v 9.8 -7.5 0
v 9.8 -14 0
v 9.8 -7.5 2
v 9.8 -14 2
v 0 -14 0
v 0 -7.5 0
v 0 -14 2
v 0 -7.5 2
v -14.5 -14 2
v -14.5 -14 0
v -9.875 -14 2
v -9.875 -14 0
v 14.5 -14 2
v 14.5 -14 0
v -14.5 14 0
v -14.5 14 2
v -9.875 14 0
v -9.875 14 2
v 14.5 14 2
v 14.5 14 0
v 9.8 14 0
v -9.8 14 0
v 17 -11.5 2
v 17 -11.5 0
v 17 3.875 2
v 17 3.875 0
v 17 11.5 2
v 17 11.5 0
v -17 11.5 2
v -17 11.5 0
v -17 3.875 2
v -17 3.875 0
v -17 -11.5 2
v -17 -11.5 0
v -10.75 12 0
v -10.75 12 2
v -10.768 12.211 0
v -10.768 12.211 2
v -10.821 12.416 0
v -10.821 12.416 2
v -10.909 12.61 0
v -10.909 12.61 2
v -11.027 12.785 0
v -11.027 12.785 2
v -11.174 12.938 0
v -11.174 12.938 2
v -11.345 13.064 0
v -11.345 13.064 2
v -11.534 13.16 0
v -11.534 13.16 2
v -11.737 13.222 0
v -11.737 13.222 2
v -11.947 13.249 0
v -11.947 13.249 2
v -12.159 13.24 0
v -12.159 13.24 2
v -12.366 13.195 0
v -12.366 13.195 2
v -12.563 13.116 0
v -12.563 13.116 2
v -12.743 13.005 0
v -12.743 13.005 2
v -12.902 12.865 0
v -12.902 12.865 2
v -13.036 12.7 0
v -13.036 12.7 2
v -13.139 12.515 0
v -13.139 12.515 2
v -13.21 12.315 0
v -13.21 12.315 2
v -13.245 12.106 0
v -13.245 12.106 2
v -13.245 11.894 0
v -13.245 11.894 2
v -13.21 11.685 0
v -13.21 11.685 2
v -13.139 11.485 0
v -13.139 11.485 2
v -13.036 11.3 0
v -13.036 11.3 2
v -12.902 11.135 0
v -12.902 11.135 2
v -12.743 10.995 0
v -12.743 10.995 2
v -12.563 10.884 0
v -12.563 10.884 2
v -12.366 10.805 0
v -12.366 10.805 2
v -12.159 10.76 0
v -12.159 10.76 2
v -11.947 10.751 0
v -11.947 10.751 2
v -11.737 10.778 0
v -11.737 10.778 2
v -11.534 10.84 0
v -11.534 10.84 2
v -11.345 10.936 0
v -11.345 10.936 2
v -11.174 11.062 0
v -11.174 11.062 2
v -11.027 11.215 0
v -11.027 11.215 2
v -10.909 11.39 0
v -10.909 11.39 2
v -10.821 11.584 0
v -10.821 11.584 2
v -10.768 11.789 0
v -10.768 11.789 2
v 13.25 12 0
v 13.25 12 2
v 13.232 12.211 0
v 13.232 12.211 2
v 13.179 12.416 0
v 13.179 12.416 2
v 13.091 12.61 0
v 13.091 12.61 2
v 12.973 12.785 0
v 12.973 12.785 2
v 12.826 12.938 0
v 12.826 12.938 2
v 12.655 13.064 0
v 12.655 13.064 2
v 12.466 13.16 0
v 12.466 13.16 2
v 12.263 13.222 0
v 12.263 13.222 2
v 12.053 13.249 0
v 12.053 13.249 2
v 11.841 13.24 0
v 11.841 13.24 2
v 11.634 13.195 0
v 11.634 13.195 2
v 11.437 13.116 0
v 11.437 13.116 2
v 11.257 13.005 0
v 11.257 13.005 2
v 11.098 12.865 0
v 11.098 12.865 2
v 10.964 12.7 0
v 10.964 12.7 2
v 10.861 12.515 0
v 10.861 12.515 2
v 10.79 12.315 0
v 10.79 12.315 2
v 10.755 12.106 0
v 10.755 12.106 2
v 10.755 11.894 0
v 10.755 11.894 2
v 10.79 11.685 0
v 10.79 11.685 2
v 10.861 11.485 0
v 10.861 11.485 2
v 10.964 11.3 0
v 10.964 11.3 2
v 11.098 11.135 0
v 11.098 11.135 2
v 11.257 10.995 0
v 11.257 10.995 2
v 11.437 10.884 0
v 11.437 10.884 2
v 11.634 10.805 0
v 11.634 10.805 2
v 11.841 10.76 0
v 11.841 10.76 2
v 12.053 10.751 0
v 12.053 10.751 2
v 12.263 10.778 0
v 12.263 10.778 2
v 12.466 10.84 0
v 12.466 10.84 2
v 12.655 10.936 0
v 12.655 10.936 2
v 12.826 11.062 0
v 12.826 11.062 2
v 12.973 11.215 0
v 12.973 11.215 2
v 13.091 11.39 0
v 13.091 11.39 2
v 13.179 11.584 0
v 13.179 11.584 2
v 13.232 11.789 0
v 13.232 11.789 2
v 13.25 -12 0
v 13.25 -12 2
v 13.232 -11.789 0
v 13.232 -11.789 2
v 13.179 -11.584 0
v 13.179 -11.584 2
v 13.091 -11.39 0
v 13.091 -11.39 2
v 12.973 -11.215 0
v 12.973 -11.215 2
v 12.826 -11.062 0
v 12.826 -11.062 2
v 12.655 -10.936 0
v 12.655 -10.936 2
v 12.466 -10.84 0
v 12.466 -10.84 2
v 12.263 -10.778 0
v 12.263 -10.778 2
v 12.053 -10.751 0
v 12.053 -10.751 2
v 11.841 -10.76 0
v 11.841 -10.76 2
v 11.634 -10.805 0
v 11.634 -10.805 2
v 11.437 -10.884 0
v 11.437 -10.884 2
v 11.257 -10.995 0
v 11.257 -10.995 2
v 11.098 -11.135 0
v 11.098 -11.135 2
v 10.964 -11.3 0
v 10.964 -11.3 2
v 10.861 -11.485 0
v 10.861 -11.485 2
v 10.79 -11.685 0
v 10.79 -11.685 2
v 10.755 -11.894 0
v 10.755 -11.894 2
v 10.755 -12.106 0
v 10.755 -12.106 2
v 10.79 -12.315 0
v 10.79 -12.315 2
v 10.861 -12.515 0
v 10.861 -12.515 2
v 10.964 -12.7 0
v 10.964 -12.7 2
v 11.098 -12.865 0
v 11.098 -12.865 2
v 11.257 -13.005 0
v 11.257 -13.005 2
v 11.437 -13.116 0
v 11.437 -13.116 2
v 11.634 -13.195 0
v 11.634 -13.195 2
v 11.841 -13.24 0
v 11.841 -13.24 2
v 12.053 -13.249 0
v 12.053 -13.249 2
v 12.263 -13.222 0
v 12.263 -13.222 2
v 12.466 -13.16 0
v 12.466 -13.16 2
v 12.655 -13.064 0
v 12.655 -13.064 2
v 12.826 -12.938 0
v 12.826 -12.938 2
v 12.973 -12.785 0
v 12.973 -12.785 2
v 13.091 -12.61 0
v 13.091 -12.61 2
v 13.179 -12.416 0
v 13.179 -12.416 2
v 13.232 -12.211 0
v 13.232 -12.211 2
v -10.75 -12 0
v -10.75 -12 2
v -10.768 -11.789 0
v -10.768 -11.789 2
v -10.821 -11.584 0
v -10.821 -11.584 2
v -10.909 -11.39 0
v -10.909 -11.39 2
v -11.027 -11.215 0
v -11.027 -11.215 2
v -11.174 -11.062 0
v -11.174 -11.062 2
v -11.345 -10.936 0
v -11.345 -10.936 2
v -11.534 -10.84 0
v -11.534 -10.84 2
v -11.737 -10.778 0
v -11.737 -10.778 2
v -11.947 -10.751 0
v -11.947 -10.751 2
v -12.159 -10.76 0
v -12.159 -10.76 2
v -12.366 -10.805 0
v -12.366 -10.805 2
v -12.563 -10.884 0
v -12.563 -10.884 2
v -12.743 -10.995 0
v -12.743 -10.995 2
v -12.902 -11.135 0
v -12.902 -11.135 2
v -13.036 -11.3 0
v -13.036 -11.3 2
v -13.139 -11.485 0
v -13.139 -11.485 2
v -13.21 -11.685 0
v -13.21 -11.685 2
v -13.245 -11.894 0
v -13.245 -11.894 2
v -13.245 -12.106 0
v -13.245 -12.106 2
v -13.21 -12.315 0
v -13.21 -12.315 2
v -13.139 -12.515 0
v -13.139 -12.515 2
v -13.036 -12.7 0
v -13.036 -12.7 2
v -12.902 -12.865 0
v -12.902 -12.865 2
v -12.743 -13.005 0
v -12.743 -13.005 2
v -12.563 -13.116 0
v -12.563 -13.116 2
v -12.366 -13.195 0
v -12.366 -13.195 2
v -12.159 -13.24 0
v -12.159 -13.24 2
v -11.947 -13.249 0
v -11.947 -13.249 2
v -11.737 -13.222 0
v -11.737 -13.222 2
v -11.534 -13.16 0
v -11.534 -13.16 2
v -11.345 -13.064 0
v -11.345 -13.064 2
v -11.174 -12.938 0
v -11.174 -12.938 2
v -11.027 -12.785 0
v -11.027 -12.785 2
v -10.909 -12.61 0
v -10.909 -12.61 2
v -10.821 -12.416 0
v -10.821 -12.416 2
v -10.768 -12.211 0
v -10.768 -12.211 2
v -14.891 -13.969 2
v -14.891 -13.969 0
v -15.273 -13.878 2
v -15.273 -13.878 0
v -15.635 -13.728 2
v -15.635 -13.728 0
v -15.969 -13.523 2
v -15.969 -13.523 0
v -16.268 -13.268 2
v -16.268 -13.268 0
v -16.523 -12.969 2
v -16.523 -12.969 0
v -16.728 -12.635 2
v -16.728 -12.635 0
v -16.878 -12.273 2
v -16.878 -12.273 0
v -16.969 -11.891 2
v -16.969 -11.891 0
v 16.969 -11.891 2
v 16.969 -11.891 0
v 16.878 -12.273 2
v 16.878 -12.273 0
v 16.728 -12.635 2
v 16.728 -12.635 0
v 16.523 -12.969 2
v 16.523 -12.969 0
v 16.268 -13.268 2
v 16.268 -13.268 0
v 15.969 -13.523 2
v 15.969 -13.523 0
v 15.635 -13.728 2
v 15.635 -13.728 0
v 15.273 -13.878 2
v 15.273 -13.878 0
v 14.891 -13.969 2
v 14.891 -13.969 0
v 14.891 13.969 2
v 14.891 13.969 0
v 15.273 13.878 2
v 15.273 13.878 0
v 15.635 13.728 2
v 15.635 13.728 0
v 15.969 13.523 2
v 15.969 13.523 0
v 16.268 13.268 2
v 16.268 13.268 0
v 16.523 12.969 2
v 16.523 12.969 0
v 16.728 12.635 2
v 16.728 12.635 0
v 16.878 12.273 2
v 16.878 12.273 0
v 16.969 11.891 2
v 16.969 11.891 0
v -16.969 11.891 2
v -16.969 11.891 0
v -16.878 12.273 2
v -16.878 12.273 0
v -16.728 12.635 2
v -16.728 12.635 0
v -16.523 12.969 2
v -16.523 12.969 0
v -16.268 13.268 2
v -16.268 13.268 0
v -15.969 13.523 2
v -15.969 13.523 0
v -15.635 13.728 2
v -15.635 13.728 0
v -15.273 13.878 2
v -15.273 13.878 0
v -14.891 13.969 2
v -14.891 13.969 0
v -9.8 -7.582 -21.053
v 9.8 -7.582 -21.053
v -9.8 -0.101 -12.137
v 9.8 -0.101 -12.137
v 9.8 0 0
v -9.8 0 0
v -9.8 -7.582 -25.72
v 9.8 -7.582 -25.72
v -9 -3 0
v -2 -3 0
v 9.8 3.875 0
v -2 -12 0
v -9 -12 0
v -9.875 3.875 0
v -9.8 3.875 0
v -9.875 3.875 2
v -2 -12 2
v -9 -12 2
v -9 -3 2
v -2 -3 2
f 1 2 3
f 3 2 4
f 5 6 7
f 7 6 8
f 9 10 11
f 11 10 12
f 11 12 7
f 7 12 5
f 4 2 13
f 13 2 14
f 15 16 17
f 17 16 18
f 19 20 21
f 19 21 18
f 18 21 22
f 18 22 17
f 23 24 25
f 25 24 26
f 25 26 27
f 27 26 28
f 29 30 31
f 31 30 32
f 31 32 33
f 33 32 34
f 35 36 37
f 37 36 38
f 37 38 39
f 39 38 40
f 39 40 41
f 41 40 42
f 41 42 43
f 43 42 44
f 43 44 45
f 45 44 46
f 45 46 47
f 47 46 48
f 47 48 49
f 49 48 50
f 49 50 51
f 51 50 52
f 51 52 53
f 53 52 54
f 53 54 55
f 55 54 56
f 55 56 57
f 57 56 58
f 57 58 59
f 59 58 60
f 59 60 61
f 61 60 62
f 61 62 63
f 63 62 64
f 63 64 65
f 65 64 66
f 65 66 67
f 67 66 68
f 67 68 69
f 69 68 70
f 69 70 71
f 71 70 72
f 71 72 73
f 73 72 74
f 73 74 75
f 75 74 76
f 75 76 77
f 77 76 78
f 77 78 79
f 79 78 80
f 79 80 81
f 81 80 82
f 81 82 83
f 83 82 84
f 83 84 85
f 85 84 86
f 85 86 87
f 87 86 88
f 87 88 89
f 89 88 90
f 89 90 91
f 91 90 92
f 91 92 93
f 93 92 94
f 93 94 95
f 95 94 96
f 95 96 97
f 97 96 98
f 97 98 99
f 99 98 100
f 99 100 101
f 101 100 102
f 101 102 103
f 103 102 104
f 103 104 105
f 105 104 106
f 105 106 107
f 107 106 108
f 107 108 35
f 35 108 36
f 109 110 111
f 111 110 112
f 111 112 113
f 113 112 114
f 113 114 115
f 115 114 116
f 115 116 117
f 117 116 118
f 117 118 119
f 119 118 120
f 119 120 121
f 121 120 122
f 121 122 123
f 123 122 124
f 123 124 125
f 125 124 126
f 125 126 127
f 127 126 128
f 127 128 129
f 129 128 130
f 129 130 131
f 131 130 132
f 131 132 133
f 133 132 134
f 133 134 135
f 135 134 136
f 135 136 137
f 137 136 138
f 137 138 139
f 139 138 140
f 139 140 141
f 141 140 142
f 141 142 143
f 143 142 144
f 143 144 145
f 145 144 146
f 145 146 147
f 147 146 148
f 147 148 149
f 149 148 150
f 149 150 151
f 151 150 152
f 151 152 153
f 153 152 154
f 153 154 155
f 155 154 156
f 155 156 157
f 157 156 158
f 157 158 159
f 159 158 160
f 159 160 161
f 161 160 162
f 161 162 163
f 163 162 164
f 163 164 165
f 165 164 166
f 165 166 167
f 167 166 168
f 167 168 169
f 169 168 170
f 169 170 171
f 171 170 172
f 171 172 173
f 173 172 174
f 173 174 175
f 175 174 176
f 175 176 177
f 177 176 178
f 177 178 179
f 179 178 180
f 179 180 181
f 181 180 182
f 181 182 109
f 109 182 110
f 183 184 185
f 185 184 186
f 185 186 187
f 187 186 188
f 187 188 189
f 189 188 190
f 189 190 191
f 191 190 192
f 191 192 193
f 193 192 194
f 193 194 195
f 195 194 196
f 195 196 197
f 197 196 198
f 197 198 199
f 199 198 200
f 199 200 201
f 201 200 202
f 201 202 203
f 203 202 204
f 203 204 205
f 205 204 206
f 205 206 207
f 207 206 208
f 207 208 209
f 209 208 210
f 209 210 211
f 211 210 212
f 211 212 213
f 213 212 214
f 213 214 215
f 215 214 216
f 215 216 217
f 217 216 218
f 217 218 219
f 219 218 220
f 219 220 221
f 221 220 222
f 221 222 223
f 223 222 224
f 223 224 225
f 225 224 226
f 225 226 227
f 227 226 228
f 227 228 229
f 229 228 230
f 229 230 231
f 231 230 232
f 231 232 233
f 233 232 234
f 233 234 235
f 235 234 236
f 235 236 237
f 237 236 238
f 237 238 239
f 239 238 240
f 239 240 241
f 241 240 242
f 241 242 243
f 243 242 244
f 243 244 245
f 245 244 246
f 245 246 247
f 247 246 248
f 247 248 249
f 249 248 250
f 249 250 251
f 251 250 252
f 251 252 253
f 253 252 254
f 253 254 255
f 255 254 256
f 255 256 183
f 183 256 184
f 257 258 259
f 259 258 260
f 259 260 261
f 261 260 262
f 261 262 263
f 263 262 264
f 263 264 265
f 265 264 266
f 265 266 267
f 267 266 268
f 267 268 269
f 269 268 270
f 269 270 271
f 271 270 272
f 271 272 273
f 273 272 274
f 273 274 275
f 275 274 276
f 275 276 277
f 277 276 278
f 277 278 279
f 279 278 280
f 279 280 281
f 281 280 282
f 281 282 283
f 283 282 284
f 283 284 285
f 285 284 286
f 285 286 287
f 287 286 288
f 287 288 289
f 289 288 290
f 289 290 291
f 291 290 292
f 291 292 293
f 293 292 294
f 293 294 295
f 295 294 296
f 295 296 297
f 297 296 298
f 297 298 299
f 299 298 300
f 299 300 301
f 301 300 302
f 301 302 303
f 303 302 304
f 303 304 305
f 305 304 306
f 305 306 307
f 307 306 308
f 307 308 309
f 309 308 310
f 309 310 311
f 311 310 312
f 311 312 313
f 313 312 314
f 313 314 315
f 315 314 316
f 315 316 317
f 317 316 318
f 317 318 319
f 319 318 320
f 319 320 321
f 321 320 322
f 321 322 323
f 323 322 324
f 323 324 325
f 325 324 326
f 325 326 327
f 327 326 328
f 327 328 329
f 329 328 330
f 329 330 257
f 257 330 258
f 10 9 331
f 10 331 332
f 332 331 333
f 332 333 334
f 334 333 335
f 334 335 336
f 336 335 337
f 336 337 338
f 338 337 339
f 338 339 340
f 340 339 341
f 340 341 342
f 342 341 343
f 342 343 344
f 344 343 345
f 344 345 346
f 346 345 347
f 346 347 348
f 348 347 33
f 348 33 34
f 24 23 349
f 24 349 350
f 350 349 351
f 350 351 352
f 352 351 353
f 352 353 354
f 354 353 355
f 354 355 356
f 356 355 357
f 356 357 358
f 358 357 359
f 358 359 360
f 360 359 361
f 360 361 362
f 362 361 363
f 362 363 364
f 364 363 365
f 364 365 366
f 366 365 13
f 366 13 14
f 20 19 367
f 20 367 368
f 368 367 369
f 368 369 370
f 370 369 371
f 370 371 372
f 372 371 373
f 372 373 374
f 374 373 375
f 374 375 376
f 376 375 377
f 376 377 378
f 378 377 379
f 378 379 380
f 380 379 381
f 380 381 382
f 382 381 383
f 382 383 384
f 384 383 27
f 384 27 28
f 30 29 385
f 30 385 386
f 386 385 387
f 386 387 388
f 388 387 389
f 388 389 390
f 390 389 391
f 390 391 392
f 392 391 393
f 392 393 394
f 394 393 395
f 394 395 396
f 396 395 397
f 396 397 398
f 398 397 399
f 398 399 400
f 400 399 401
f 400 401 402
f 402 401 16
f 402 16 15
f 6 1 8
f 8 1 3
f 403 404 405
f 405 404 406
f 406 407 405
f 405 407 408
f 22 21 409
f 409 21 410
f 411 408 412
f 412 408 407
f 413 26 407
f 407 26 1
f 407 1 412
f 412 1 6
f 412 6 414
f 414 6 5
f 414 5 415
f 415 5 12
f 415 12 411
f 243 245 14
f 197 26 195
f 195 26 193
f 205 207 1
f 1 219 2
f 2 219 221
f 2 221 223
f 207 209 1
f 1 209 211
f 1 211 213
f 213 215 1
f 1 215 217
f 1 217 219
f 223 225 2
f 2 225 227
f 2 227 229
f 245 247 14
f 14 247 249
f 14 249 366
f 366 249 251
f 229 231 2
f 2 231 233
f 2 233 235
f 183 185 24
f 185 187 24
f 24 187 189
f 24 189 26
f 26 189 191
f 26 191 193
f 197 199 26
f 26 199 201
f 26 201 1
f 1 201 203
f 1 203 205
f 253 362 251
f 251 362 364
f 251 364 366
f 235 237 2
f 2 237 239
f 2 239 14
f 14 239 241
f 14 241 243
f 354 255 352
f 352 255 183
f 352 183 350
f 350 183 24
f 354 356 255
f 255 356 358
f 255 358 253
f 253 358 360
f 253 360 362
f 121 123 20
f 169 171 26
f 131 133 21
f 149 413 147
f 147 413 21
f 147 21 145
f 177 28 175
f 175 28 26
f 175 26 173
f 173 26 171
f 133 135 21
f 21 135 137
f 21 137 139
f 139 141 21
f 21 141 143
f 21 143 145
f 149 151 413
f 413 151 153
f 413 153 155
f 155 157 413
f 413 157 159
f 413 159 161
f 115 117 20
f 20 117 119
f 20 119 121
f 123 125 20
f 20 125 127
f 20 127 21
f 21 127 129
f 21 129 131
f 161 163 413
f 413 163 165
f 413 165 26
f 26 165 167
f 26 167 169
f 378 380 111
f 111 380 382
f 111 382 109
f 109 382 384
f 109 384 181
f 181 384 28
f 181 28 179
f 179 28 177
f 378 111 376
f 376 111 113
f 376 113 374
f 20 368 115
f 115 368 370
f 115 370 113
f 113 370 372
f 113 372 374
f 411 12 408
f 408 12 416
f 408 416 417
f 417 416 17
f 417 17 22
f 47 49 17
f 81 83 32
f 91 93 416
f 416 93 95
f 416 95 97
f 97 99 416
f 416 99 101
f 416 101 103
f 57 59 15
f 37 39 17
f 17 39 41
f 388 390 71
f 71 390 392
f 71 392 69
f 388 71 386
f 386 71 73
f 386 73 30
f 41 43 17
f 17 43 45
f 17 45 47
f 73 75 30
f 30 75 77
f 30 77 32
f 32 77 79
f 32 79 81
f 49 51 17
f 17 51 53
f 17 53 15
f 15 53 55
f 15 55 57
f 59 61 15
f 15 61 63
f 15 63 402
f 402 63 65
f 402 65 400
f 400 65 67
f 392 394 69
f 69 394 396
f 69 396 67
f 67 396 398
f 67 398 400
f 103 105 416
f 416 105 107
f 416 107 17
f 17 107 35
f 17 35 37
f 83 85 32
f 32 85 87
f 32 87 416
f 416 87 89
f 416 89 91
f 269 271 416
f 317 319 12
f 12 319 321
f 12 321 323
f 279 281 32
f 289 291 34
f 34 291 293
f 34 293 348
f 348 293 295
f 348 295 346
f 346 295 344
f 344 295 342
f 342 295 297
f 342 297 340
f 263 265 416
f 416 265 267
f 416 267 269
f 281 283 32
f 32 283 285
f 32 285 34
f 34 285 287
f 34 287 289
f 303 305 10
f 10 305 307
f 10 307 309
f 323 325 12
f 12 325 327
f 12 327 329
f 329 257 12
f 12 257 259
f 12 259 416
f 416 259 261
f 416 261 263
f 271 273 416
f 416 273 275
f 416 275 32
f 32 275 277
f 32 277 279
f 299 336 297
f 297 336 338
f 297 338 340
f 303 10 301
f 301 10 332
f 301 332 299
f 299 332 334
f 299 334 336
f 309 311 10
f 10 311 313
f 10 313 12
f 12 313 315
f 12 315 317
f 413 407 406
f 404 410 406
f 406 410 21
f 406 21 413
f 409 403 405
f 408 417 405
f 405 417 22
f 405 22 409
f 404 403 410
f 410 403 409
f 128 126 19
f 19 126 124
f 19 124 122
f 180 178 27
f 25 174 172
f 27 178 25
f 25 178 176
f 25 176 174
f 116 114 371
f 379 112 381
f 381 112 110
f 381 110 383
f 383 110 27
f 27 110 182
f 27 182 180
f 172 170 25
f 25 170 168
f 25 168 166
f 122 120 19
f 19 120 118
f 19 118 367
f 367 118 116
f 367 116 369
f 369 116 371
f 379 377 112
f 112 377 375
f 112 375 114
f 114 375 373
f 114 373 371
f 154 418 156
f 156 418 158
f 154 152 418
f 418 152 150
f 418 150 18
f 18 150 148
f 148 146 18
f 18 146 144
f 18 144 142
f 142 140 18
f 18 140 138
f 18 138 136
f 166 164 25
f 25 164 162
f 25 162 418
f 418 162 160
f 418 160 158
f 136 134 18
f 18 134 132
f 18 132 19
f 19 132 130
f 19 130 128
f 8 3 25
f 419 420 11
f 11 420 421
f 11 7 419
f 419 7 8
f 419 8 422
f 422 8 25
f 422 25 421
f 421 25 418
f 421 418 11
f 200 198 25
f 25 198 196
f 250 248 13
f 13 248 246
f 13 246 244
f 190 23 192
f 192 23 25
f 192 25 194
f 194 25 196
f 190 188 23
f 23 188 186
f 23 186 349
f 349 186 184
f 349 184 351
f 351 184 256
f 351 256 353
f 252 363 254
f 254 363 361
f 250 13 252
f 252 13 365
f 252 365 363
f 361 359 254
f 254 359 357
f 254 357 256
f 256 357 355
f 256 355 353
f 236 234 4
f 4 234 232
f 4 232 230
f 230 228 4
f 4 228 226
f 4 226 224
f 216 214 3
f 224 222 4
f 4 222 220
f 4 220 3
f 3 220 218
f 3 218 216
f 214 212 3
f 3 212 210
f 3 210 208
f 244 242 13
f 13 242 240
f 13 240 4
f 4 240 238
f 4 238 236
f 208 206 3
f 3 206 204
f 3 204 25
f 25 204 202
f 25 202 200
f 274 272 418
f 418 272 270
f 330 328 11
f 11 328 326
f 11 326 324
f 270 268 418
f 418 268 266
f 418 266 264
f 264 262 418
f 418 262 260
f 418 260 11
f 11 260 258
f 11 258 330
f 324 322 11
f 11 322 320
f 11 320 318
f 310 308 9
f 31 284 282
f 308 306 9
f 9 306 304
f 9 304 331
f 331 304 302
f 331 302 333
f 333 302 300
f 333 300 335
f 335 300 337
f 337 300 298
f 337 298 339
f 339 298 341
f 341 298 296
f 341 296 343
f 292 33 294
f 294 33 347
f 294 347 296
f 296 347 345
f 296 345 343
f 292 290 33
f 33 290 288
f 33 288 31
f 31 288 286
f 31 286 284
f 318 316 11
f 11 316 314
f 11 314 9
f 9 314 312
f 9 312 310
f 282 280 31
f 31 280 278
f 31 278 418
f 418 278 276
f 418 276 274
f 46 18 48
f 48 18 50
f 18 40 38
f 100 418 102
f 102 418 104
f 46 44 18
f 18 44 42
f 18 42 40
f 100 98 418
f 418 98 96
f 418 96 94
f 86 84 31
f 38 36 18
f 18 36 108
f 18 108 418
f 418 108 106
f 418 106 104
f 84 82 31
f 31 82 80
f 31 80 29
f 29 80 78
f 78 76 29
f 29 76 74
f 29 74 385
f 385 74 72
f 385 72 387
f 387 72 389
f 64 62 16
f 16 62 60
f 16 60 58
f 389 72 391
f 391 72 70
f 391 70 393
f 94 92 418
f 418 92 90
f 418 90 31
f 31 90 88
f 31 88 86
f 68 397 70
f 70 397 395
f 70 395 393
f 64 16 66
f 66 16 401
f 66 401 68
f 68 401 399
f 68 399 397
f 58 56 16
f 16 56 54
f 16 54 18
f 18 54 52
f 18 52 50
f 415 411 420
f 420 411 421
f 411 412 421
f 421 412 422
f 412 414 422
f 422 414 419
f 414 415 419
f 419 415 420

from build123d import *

# Parameters (mm, degrees)
SKETCH_1_W           = 40
SKETCH_1_H           = 32
SKETCH_1_R           = 1.15
EXTRUDE_1_DEPTH      = 3
SKETCH_2_W           = 9.8
SKETCH_2_H           = 5
CUT_EXTRUDE_1_DEPTH  = 3
SKETCH_3_W           = 40
SKETCH_3_H           = 32
SKETCH_3_W_2         = 34
SKETCH_3_H_2         = 28
CUT_EXTRUDE_2_DEPTH  = 3
SKETCH_4_R           = 1.15
EXTRUDE_2_DEPTH      = 1
EXTRUDE_3_DEPTH      = 1
EXTRUDE_5_DEPTH      = 26.8
CUT_EXTRUDE_5_DEPTH  = 7.2
SKETCH_8_W           = 7.003091986
SKETCH_8_H           = 2.463874749
CUT_EXTRUDE_6_DEPTH  = 20
CUT_EXTRUDE_START    = -1
SKETCH_10_R          = 1.15
CUT_EXTRUDE_7_DEPTH  = 1
EXTRUDE_START        = -3
SKETCH_11_R          = 1.15
EXTRUDE_6_DEPTH      = 3
CUT_EXTRUDE_8_DEPTH  = 10
EXTRUDE_START_2      = 1
SKETCH_13_R          = 2
SKETCH_13_R_2        = 1.25
EXTRUDE_9_DEPTH      = 1
SKETCH_14_W          = 8
SKETCH_14_H          = 3
CUT_EXTRUDE_10_DEPTH = 1.5
FILLET_1_R           = 2.5
SKETCH_15_W          = 9.8
SKETCH_15_H          = 1.5
CUT_EXTRUDE_11_DEPTH = 10
EXTRUDE_10_DEPTH     = 1.5
EXTRUDE_11_DEPTH     = 1
SKETCH_18_W          = 36.501584598
SKETCH_18_H          = 29.005250462
CUT_EXTRUDE_12_DEPTH = 2
SKETCH_19_W          = 7
SKETCH_19_H          = 9
CUT_EXTRUDE_13_DEPTH = 2


with BuildPart() as part:
    # 스케치1 → 보스-돌출1 (new body)
    with BuildSketch(Plane.XY):
        Rectangle(SKETCH_1_W, SKETCH_1_H)
        with Locations((-11.5, 11.5)):
            Circle(SKETCH_1_R, mode=Mode.SUBTRACT)
        with Locations((11.5, 11.5)):
            Circle(SKETCH_1_R, mode=Mode.SUBTRACT)
        with Locations((11.5, -11.5)):
            Circle(SKETCH_1_R, mode=Mode.SUBTRACT)
        with Locations((-11.5, -11.5)):
            Circle(SKETCH_1_R, mode=Mode.SUBTRACT)
    extrude(amount=EXTRUDE_1_DEPTH)

    # 스케치2 → 컷-돌출1 (cut)
    with BuildSketch(Plane.XY.offset(3)):
        with Locations((4.9, -11.5)):
            Rectangle(SKETCH_2_W, SKETCH_2_H)
    extrude(amount=-CUT_EXTRUDE_1_DEPTH, mode=Mode.SUBTRACT)

    # 스케치3 → 컷-돌출2 (cut)
    with BuildSketch(Plane.XY.offset(3)):
        Rectangle(SKETCH_3_W, SKETCH_3_H)
        Rectangle(SKETCH_3_W_2, SKETCH_3_H_2, mode=Mode.SUBTRACT)
    extrude(amount=-CUT_EXTRUDE_2_DEPTH, mode=Mode.SUBTRACT)

    # 스케치4 → 보스-돌출2 (add)
    # profile 1 of 13: a face of its own
    with BuildSketch(Plane.XY.offset(3)):
        with BuildLine():
            ThreePointArc((11.5, 14), (9.732233047, 13.267766953), (9, 11.5))
            Line((9, 11.5), (10.35, 11.5))
            ThreePointArc((10.35, 11.5), (11.5, 12.65), (12.65, 11.5))
            Line((12.65, 11.5), (14, 11.5))
            ThreePointArc((14, 11.5), (13.267766953, 13.267766953), (11.5, 14))
        make_face()
    # profile 2 of 13: a face of its own
    with BuildSketch(Plane.XY.offset(3)):
        with BuildLine():
            Line((10.35, 11.5), (9, 11.5))
            ThreePointArc((9, 11.5), (11.5, 9), (14, 11.5))
            Line((14, 11.5), (12.65, 11.5))
            ThreePointArc((12.65, 11.5), (11.5, 10.35), (10.35, 11.5))
        make_face()
    # profile 3 of 13: a face of its own
    with BuildSketch(Plane.XY.offset(3)):
        with BuildLine():
            ThreePointArc((11.5, 14), (9.732233047, 13.267766953), (9, 11.5))
            Line((9, 11.5), (10.35, 11.5))
            ThreePointArc((10.35, 11.5), (11.5, 12.65), (12.65, 11.5))
            Line((12.65, 11.5), (14, 11.5))
            ThreePointArc((14, 11.5), (13.267766953, 13.267766953), (11.5, 14))
        make_face()
    # profile 4 of 13: a face of its own
    with BuildSketch(Plane.XY.offset(3)):
        with BuildLine():
            Line((10.35, 11.5), (9, 11.5))
            ThreePointArc((9, 11.5), (11.5, 9), (14, 11.5))
            Line((14, 11.5), (12.65, 11.5))
            ThreePointArc((12.65, 11.5), (11.5, 10.35), (10.35, 11.5))
        make_face()
    # profile 5 of 13: a face of its own
    with BuildSketch(Plane.XY.offset(3)):
        with BuildLine():
            ThreePointArc((-11.5, 14), (-13.267766953, 13.267766953), (-14, 11.5))
            Line((-14, 11.5), (-12.65, 11.5))
            ThreePointArc((-12.65, 11.5), (-11.5, 12.65), (-10.35, 11.5))
            Line((-10.35, 11.5), (-9, 11.5))
            ThreePointArc((-9, 11.5), (-9.732233047, 13.267766953), (-11.5, 14))
        make_face()
    # profile 6 of 13: a face of its own
    with BuildSketch(Plane.XY.offset(3)):
        with BuildLine():
            Line((-12.65, 11.5), (-14, 11.5))
            ThreePointArc((-14, 11.5), (-11.5, 9), (-9, 11.5))
            Line((-9, 11.5), (-10.35, 11.5))
            ThreePointArc((-10.35, 11.5), (-11.5, 10.35), (-12.65, 11.5))
        make_face()
    # profile 7 of 13: a face of its own
    with BuildSketch(Plane.XY.offset(3)):
        with BuildLine():
            ThreePointArc((-11.5, 14), (-13.267766953, 13.267766953), (-14, 11.5))
            Line((-14, 11.5), (-12.65, 11.5))
            ThreePointArc((-12.65, 11.5), (-11.5, 12.65), (-10.35, 11.5))
            Line((-10.35, 11.5), (-9, 11.5))
            ThreePointArc((-9, 11.5), (-9.732233047, 13.267766953), (-11.5, 14))
        make_face()
    # profile 8 of 13: a face of its own
    with BuildSketch(Plane.XY.offset(3)):
        with BuildLine():
            Line((-12.65, 11.5), (-14, 11.5))
            ThreePointArc((-14, 11.5), (-11.5, 9), (-9, 11.5))
            Line((-9, 11.5), (-10.35, 11.5))
            ThreePointArc((-10.35, 11.5), (-11.5, 10.35), (-12.65, 11.5))
        make_face()
    # profile 9 of 13: a face of its own
    with BuildSketch(Plane.XY.offset(3)):
        with BuildLine():
            ThreePointArc((-9, -11.5), (-11.5, -9), (-14, -11.5))
            Line((-14, -11.5), (-12.65, -11.5))
            ThreePointArc((-12.65, -11.5), (-11.5, -10.35), (-10.35, -11.5))
            Line((-10.35, -11.5), (-9, -11.5))
        make_face()
    # profile 10 of 13: a face of its own
    with BuildSketch(Plane.XY.offset(3)):
        with BuildLine():
            Line((-12.65, -11.5), (-14, -11.5))
            ThreePointArc((-14, -11.5), (-13.267766953, -13.267766953), (-11.5, -14))
            ThreePointArc((-11.5, -14), (-9.732233047, -13.267766953), (-9, -11.5))
            Line((-9, -11.5), (-10.35, -11.5))
            ThreePointArc((-10.35, -11.5), (-11.5, -12.65), (-12.65, -11.5))
        make_face()
    # profile 11 of 13: a face of its own
    with BuildSketch(Plane.XY.offset(3)):
        with BuildLine():
            ThreePointArc((-9, -11.5), (-11.5, -9), (-14, -11.5))
            Line((-14, -11.5), (-12.65, -11.5))
            ThreePointArc((-12.65, -11.5), (-11.5, -10.35), (-10.35, -11.5))
            Line((-10.35, -11.5), (-9, -11.5))
        make_face()
    # profile 12 of 13: a face of its own
    with BuildSketch(Plane.XY.offset(3)):
        with BuildLine():
            Line((-12.65, -11.5), (-14, -11.5))
            ThreePointArc((-14, -11.5), (-13.267766953, -13.267766953), (-11.5, -14))
            ThreePointArc((-11.5, -14), (-9.732233047, -13.267766953), (-9, -11.5))
            Line((-9, -11.5), (-10.35, -11.5))
            ThreePointArc((-10.35, -11.5), (-11.5, -12.65), (-12.65, -11.5))
        make_face()
    # profile 13 of 13: a face of its own
    with BuildSketch(Plane.XY.offset(3)):
        with BuildLine():
            Line((9.8, -9.666969722), (9.8, -13.333030278))
            ThreePointArc((9.8, -13.333030278), (10.586921607, -13.827291956), (11.5, -14))
            ThreePointArc((11.5, -14), (13.267766953, -13.267766953), (14, -11.5))
            ThreePointArc((14, -11.5), (12.5, -9.208712153), (9.8, -9.666969722))
        make_face()
        with Locations((11.5, -11.5)):
            Circle(SKETCH_4_R, mode=Mode.SUBTRACT)
    extrude(amount=EXTRUDE_2_DEPTH)

    # 스케치5 → 보스-돌출3 (add)
    with BuildSketch(Plane.XY.offset(3)):
        with BuildLine():
            Line((14, -14), (14, -11.5))
            ThreePointArc((14, -11.5), (13.267766953, -13.267766953), (11.5, -14))
            Line((11.5, -14), (14, -14))
        make_face()
        with BuildLine():
            ThreePointArc((-11.5, -14), (-13.267766953, -13.267766953), (-14, -11.5))
            Line((-14, -11.5), (-14, -14))
            Line((-14, -14), (-11.5, -14))
        make_face()
        with BuildLine():
            Line((-9, -14), (-9, -11.5))
            ThreePointArc((-9, -11.5), (-9.732233047, -13.267766953), (-11.5, -14))
            Line((-11.5, -14), (-9, -14))
        make_face()
        with BuildLine():
            ThreePointArc((-14, 11.5), (-13.267766953, 13.267766953), (-11.5, 14))
            Line((-11.5, 14), (-14, 14))
            Line((-14, 14), (-14, 11.5))
        make_face()
        with BuildLine():
            Line((-9, 11.5), (-9, 14))
            Line((-9, 14), (-11.5, 14))
            ThreePointArc((-11.5, 14), (-9.732233047, 13.267766953), (-9, 11.5))
        make_face()
        with BuildLine():
            ThreePointArc((9, 11.5), (9.732233047, 13.267766953), (11.5, 14))
            Line((11.5, 14), (9, 14))
            Line((9, 14), (9, 11.5))
        make_face()
        with BuildLine():
            ThreePointArc((11.5, 14), (13.267766953, 13.267766953), (14, 11.5))
            Line((14, 11.5), (14, 14))
            Line((14, 14), (11.5, 14))
        make_face()
        with BuildLine():
            Line((14, -11.5), (12.65, -11.5))
            ThreePointArc((12.65, -11.5), (11.5, -12.65), (10.35, -11.5))
            Line((10.35, -11.5), (9.8, -11.5))
            Line((9.8, -11.5), (9.8, -14))
            Line((9.8, -14), (11.5, -14))
            ThreePointArc((11.5, -14), (13.267766953, -13.267766953), (14, -11.5))
        make_face()
    extrude(amount=EXTRUDE_3_DEPTH)

    # 스케치6 → 보스-돌출5 (add)
    with BuildSketch(Plane.ZY.offset(17)):
        Polygon((-22.981333294, -5.283628291), (-21.052970465, -7.58176162), (-26.811555509, -8.497566339), align=None)
        Polygon((-9.562303818, 2.060052525), (0, 10.083778132), (0, 14), (-22.981333294, -5.283628291), (-21.052970465, -7.58176162), (-12.137495761, -0.100790085), align=None)
        Polygon((-12.137495761, -0.100790085), (0, 0), (0, 10.083778132), (-9.562303818, 2.060052525), align=None)
    extrude(amount=-EXTRUDE_5_DEPTH)

    # 스케치7 → 컷-돌출5 (cut)
    with BuildSketch(Plane.ZY.offset(17)):
        Polygon((0, 0), (0, 14), (-26.811555509, -8.497566339), (-21.052970465, -7.58176162), (-12.137495761, -0.100790085), align=None)
    extrude(amount=-CUT_EXTRUDE_5_DEPTH, mode=Mode.SUBTRACT)

    # 스케치8 → 컷-돌출6 (cut)
    with BuildSketch(Plane.ZY.offset(9.8)):
        with Locations((-24.554516458, -8.813698995)):
            Rectangle(SKETCH_8_W, SKETCH_8_H)
    extrude(amount=-CUT_EXTRUDE_6_DEPTH, mode=Mode.SUBTRACT)

    # 스케치10 → 컷-돌출7 (cut)
    # profile 1 of 4: a face of its own
    with BuildSketch(Plane.XY.offset(4).offset(CUT_EXTRUDE_START)):
        with BuildLine():
            Line((-14, -11.5), (-14, -14))
            Line((-14, -14), (-9, -14))
            Line((-9, -14), (-9, -11.5))
            ThreePointArc((-9, -11.5), (-11.5, -9), (-14, -11.5))
        make_face()
        with Locations((-11.5, -11.5)):
            Circle(SKETCH_10_R, mode=Mode.SUBTRACT)
    # profile 2 of 4: a face of its own
    with BuildSketch(Plane.XY.offset(4).offset(CUT_EXTRUDE_START)):
        with BuildLine():
            Line((-14, 14), (-14, 11.5))
            ThreePointArc((-14, 11.5), (-11.5, 9), (-9, 11.5))
            Line((-9, 11.5), (-9, 14))
            Line((-9, 14), (-14, 14))
        make_face()
        with Locations((-11.5, 11.5)):
            Circle(SKETCH_10_R, mode=Mode.SUBTRACT)
    # profile 3 of 4: a face of its own
    with BuildSketch(Plane.XY.offset(4).offset(CUT_EXTRUDE_START)):
        with BuildLine():
            Line((9.8, -14), (14, -14))
            Line((14, -14), (14, -11.5))
            ThreePointArc((14, -11.5), (12.5, -9.208712153), (9.8, -9.666969722))
            Line((9.8, -9.666969722), (9.8, -14))
        make_face()
        with Locations((11.5, -11.5)):
            Circle(SKETCH_10_R, mode=Mode.SUBTRACT)
    # profile 4 of 4: a face of its own
    with BuildSketch(Plane.XY.offset(4).offset(CUT_EXTRUDE_START)):
        with BuildLine():
            Line((9, 14), (9, 11.5))
            ThreePointArc((9, 11.5), (11.5, 9), (14, 11.5))
            Line((14, 11.5), (14, 14))
            Line((14, 14), (9, 14))
        make_face()
        with Locations((11.5, 11.5)):
            Circle(SKETCH_10_R, mode=Mode.SUBTRACT)
    extrude(amount=CUT_EXTRUDE_7_DEPTH, mode=Mode.SUBTRACT)

    # 스케치11 → 보스-돌출6 (add)
    with BuildSketch(Plane.XY.offset(3).offset(EXTRUDE_START)):
        with Locations((-11.5, 11.5)):
            Circle(SKETCH_11_R)
        with Locations((11.5, 11.5)):
            Circle(SKETCH_11_R)
        with Locations((11.5, -11.5)):
            Circle(SKETCH_11_R)
        with Locations((-11.5, -11.5)):
            Circle(SKETCH_11_R)
    extrude(amount=EXTRUDE_6_DEPTH)

    # 스케치12 → 컷-돌출8 (cut)
    with BuildSketch(Plane.XY.offset(3)):
        with BuildLine():
            ThreePointArc((-10.75, 12), (-12.883883476, 12.883883476), (-12, 10.75))
            Line((-12, 10.75), (-12, 12))
            Line((-12, 12), (-10.75, 12))
        make_face()
        with BuildLine():
            Line((-12, 12), (-12, 10.75))
            ThreePointArc((-12, 10.75), (-11.116116524, 11.116116524), (-10.75, 12))
            Line((-10.75, 12), (-12, 12))
        make_face()
        with BuildLine():
            ThreePointArc((-10.75, 12), (-12.883883476, 12.883883476), (-12, 10.75))
            Line((-12, 10.75), (-12, 12))
            Line((-12, 12), (-10.75, 12))
        make_face()
        with BuildLine():
            Line((-12, 12), (-12, 10.75))
            ThreePointArc((-12, 10.75), (-11.116116524, 11.116116524), (-10.75, 12))
            Line((-10.75, 12), (-12, 12))
        make_face()
        with BuildLine():
            ThreePointArc((10.75, 12), (11.116116524, 11.116116524), (12, 10.75))
            Line((12, 10.75), (12, 12))
            Line((12, 12), (10.75, 12))
        make_face()
        with BuildLine():
            Line((12, 12), (12, 10.75))
            ThreePointArc((12, 10.75), (12.883883476, 11.116116524), (13.25, 12))
            ThreePointArc((13.25, 12), (12, 13.25), (10.75, 12))
            Line((10.75, 12), (12, 12))
        make_face()
        with BuildLine():
            ThreePointArc((10.75, 12), (11.116116524, 11.116116524), (12, 10.75))
            Line((12, 10.75), (12, 12))
            Line((12, 12), (10.75, 12))
        make_face()
        with BuildLine():
            Line((12, 12), (12, 10.75))
            ThreePointArc((12, 10.75), (12.883883476, 11.116116524), (13.25, 12))
            ThreePointArc((13.25, 12), (12, 13.25), (10.75, 12))
            Line((10.75, 12), (12, 12))
        make_face()
        with BuildLine():
            ThreePointArc((12, -10.75), (11.116116524, -11.116116524), (10.75, -12))
            Line((10.75, -12), (12, -12))
            Line((12, -12), (12, -10.75))
        make_face()
        with BuildLine():
            Line((12, -12), (10.75, -12))
            ThreePointArc((10.75, -12), (12, -13.25), (13.25, -12))
            ThreePointArc((13.25, -12), (12.883883476, -11.116116524), (12, -10.75))
            Line((12, -10.75), (12, -12))
        make_face()
        with BuildLine():
            ThreePointArc((12, -10.75), (11.116116524, -11.116116524), (10.75, -12))
            Line((10.75, -12), (12, -12))
            Line((12, -12), (12, -10.75))
        make_face()
        with BuildLine():
            Line((12, -12), (10.75, -12))
            ThreePointArc((10.75, -12), (12, -13.25), (13.25, -12))
            ThreePointArc((13.25, -12), (12.883883476, -11.116116524), (12, -10.75))
            Line((12, -10.75), (12, -12))
        make_face()
        with BuildLine():
            Line((-12, -10.75), (-12, -12))
            Line((-12, -12), (-10.75, -12))
            ThreePointArc((-10.75, -12), (-11.116116524, -11.116116524), (-12, -10.75))
        make_face()
        with BuildLine():
            Line((-10.75, -12), (-12, -12))
            Line((-12, -12), (-12, -10.75))
            ThreePointArc((-12, -10.75), (-12.883883476, -12.883883476), (-10.75, -12))
        make_face()
        with BuildLine():
            Line((-12, -10.75), (-12, -12))
            Line((-12, -12), (-10.75, -12))
            ThreePointArc((-10.75, -12), (-11.116116524, -11.116116524), (-12, -10.75))
        make_face()
        with BuildLine():
            Line((-10.75, -12), (-12, -12))
            Line((-12, -12), (-12, -10.75))
            ThreePointArc((-12, -10.75), (-12.883883476, -12.883883476), (-10.75, -12))
        make_face()
    extrude(amount=-CUT_EXTRUDE_8_DEPTH, mode=Mode.SUBTRACT)

    # 스케치13 → 보스-돌출9 (add)
    # profile 1 of 12: a face of its own
    with BuildSketch(Plane.XY.offset(3).offset(EXTRUDE_START_2)):
        with BuildLine():
            ThreePointArc((12, 14), (13.414213562, 13.414213562), (14, 12))
            Line((14, 12), (14, 14))
            Line((14, 14), (12, 14))
        make_face()
    # profile 2 of 12: a face of its own
    with BuildSketch(Plane.XY.offset(3).offset(EXTRUDE_START_2)):
        with BuildLine():
            Line((10, 14), (10, 12))
            ThreePointArc((10, 12), (10.585786438, 13.414213562), (12, 14))
            Line((12, 14), (10, 14))
        make_face()
    # profile 3 of 12: a face of its own
    with BuildSketch(Plane.XY.offset(3).offset(EXTRUDE_START_2)):
        with Locations((12, 12)):
            Circle(SKETCH_13_R)
        with Locations((12, 12)):
            Circle(SKETCH_13_R_2, mode=Mode.SUBTRACT)
    # profile 4 of 12: a face of its own
    with BuildSketch(Plane.XY.offset(3).offset(EXTRUDE_START_2)):
        with BuildLine():
            Line((-10, 12), (-10, 14))
            Line((-10, 14), (-11.999999991, 14))
            ThreePointArc((-11.999999991, 14), (-10.585786434, 13.414213559), (-10, 12))
        make_face()
    # profile 5 of 12: a face of its own
    with BuildSketch(Plane.XY.offset(3).offset(EXTRUDE_START_2)):
        with BuildLine():
            ThreePointArc((-14, 12), (-13.414213559, 13.414213566), (-11.999999991, 14))
            Line((-11.999999991, 14), (-14, 14))
            Line((-14, 14), (-14, 12))
        make_face()
    # profile 6 of 12: a face of its own
    with BuildSketch(Plane.XY.offset(3).offset(EXTRUDE_START_2)):
        with Locations((-12, 12)):
            Circle(SKETCH_13_R)
        with Locations((-12, 12)):
            Circle(SKETCH_13_R_2, mode=Mode.SUBTRACT)
    # profile 7 of 12: a face of its own
    with BuildSketch(Plane.XY.offset(3).offset(EXTRUDE_START_2)):
        with Locations((-12, -12)):
            Circle(SKETCH_13_R)
        with Locations((-12, -12)):
            Circle(SKETCH_13_R_2, mode=Mode.SUBTRACT)
    # profile 8 of 12: a face of its own
    with BuildSketch(Plane.XY.offset(3).offset(EXTRUDE_START_2)):
        with BuildLine():
            Line((-10, -14), (-10, -12))
            ThreePointArc((-10, -12), (-10.585786438, -13.414213562), (-12, -14))
            Line((-12, -14), (-10, -14))
        make_face()
    # profile 9 of 12: a face of its own
    with BuildSketch(Plane.XY.offset(3).offset(EXTRUDE_START_2)):
        with BuildLine():
            ThreePointArc((-12, -14), (-13.414213562, -13.414213562), (-14, -12))
            Line((-14, -12), (-14, -14))
            Line((-14, -14), (-12, -14))
        make_face()
    # profile 10 of 12: a face of its own
    with BuildSketch(Plane.XY.offset(3).offset(EXTRUDE_START_2)):
        with BuildLine():
            Line((14, -14), (14, -12))
            ThreePointArc((14, -12), (13.414213562, -13.414213562), (12, -14))
            Line((12, -14), (14, -14))
        make_face()
    # profile 11 of 12: a face of its own
    with BuildSketch(Plane.XY.offset(3).offset(EXTRUDE_START_2)):
        with BuildLine():
            ThreePointArc((12, -14), (10.585786438, -13.414213562), (10, -12))
            Line((10, -12), (10, -14))
            Line((10, -14), (12, -14))
        make_face()
    # profile 12 of 12: a face of its own
    with BuildSketch(Plane.XY.offset(3).offset(EXTRUDE_START_2)):
        with Locations((12, -12)):
            Circle(SKETCH_13_R)
        with Locations((12, -12)):
            Circle(SKETCH_13_R_2, mode=Mode.SUBTRACT)
    extrude(amount=-EXTRUDE_9_DEPTH)

    # 스케치14 → 컷-돌출10 (cut)
    with BuildSketch(Plane.XY.offset(3)):
        Polygon((9.8, -9), (9.8, -9.75), (16, -9.75), (16, 9.75), (-16, 9.75), (-16, -9.75), (-8, -9.75), (0, -9.75), (0, -9), align=None)
        with Locations((-4, -11.25)):
            Rectangle(SKETCH_14_W, SKETCH_14_H)
    extrude(amount=-CUT_EXTRUDE_10_DEPTH, mode=Mode.SUBTRACT)

    # 필렛1
    fillet_1_edges = [part.edges().sort_by_distance(p)[0] for p in [
        (-17, -14, 1.5),
        (17, -14, 1.5),
        (-17, 14, 1.5),
        (17, 14, 1.5),
    ]]
    fillet(fillet_1_edges, radius=FILLET_1_R)

    # 스케치15 → 컷-돌출11 (cut)
    with BuildSketch(Plane.XY.offset(1.5)):
        with Locations((4.9, -8.25)):
            Rectangle(SKETCH_15_W, SKETCH_15_H)
    extrude(amount=-CUT_EXTRUDE_11_DEPTH, mode=Mode.SUBTRACT)

    # 스케치16 → 보스-돌출10 (add)
    with BuildSketch(Plane.XY.offset(1.5)):
        Polygon((0, -12.75), (0, -7.5), (9.8, -7.5), (9.8, -9.75), (16, -9.75), (16, 9.75), (-16, 9.75), (-16, -9.75), (-8, -9.75), (-8, -12.75), align=None)
    extrude(amount=EXTRUDE_10_DEPTH)

    # 스케치17 → 보스-돌출11 (add)
    with BuildSketch(Plane.XY.offset(3)):
        with BuildLine():
            Line((0, -7.5), (9.8, -7.5))
            Line((9.8, -7.5), (9.8, -14))
            Line((9.8, -14), (10, -14))
            Line((10, -14), (10, -12))
            ThreePointArc((10, -12), (12, -10), (14, -12))
            Line((14, -12), (14, -14))
            Line((14, -14), (14.5, -14))
            ThreePointArc((14.5, -14), (16.267766953, -13.267766953), (17, -11.5))
            Line((17, -11.5), (17, 11.5))
            ThreePointArc((17, 11.5), (16.267766953, 13.267766953), (14.5, 14))
            Line((14.5, 14), (14, 14))
            Line((14, 14), (14, 12))
            ThreePointArc((14, 12), (12, 10), (10, 12))
            Line((10, 12), (10, 14))
            Line((10, 14), (-10, 14))
            Line((-10, 14), (-10, 12))
            ThreePointArc((-10, 12), (-12, 10), (-14, 12))
            Line((-14, 12), (-14, 14))
            Line((-14, 14), (-14.5, 14))
            ThreePointArc((-14.5, 14), (-16.267766953, 13.267766953), (-17, 11.5))
            Line((-17, 11.5), (-17, -11.5))
            ThreePointArc((-17, -11.5), (-16.267766953, -13.267766953), (-14.5, -14))
            Line((-14.5, -14), (-14, -14))
            Line((-14, -14), (-14, -12))
            ThreePointArc((-14, -12), (-12, -10), (-10, -12))
            Line((-10, -12), (-10, -14))
            Line((-10, -14), (0, -14))
            Line((0, -14), (0, -7.5))
        make_face()
    extrude(amount=EXTRUDE_11_DEPTH)

    # 스케치18 → 컷-돌출12 (cut)
    with BuildSketch(Plane.XY.offset(4)):
        Rectangle(SKETCH_18_W, SKETCH_18_H)
    extrude(amount=-CUT_EXTRUDE_12_DEPTH, mode=Mode.SUBTRACT)

    # 스케치19 → 컷-돌출13 (cut)
    with BuildSketch(Plane.XY.offset(2)):
        with Locations((-5.5, -7.5)):
            Rectangle(SKETCH_19_W, SKETCH_19_H)
    extrude(amount=-CUT_EXTRUDE_13_DEPTH, mode=Mode.SUBTRACT)


solid = part.part
